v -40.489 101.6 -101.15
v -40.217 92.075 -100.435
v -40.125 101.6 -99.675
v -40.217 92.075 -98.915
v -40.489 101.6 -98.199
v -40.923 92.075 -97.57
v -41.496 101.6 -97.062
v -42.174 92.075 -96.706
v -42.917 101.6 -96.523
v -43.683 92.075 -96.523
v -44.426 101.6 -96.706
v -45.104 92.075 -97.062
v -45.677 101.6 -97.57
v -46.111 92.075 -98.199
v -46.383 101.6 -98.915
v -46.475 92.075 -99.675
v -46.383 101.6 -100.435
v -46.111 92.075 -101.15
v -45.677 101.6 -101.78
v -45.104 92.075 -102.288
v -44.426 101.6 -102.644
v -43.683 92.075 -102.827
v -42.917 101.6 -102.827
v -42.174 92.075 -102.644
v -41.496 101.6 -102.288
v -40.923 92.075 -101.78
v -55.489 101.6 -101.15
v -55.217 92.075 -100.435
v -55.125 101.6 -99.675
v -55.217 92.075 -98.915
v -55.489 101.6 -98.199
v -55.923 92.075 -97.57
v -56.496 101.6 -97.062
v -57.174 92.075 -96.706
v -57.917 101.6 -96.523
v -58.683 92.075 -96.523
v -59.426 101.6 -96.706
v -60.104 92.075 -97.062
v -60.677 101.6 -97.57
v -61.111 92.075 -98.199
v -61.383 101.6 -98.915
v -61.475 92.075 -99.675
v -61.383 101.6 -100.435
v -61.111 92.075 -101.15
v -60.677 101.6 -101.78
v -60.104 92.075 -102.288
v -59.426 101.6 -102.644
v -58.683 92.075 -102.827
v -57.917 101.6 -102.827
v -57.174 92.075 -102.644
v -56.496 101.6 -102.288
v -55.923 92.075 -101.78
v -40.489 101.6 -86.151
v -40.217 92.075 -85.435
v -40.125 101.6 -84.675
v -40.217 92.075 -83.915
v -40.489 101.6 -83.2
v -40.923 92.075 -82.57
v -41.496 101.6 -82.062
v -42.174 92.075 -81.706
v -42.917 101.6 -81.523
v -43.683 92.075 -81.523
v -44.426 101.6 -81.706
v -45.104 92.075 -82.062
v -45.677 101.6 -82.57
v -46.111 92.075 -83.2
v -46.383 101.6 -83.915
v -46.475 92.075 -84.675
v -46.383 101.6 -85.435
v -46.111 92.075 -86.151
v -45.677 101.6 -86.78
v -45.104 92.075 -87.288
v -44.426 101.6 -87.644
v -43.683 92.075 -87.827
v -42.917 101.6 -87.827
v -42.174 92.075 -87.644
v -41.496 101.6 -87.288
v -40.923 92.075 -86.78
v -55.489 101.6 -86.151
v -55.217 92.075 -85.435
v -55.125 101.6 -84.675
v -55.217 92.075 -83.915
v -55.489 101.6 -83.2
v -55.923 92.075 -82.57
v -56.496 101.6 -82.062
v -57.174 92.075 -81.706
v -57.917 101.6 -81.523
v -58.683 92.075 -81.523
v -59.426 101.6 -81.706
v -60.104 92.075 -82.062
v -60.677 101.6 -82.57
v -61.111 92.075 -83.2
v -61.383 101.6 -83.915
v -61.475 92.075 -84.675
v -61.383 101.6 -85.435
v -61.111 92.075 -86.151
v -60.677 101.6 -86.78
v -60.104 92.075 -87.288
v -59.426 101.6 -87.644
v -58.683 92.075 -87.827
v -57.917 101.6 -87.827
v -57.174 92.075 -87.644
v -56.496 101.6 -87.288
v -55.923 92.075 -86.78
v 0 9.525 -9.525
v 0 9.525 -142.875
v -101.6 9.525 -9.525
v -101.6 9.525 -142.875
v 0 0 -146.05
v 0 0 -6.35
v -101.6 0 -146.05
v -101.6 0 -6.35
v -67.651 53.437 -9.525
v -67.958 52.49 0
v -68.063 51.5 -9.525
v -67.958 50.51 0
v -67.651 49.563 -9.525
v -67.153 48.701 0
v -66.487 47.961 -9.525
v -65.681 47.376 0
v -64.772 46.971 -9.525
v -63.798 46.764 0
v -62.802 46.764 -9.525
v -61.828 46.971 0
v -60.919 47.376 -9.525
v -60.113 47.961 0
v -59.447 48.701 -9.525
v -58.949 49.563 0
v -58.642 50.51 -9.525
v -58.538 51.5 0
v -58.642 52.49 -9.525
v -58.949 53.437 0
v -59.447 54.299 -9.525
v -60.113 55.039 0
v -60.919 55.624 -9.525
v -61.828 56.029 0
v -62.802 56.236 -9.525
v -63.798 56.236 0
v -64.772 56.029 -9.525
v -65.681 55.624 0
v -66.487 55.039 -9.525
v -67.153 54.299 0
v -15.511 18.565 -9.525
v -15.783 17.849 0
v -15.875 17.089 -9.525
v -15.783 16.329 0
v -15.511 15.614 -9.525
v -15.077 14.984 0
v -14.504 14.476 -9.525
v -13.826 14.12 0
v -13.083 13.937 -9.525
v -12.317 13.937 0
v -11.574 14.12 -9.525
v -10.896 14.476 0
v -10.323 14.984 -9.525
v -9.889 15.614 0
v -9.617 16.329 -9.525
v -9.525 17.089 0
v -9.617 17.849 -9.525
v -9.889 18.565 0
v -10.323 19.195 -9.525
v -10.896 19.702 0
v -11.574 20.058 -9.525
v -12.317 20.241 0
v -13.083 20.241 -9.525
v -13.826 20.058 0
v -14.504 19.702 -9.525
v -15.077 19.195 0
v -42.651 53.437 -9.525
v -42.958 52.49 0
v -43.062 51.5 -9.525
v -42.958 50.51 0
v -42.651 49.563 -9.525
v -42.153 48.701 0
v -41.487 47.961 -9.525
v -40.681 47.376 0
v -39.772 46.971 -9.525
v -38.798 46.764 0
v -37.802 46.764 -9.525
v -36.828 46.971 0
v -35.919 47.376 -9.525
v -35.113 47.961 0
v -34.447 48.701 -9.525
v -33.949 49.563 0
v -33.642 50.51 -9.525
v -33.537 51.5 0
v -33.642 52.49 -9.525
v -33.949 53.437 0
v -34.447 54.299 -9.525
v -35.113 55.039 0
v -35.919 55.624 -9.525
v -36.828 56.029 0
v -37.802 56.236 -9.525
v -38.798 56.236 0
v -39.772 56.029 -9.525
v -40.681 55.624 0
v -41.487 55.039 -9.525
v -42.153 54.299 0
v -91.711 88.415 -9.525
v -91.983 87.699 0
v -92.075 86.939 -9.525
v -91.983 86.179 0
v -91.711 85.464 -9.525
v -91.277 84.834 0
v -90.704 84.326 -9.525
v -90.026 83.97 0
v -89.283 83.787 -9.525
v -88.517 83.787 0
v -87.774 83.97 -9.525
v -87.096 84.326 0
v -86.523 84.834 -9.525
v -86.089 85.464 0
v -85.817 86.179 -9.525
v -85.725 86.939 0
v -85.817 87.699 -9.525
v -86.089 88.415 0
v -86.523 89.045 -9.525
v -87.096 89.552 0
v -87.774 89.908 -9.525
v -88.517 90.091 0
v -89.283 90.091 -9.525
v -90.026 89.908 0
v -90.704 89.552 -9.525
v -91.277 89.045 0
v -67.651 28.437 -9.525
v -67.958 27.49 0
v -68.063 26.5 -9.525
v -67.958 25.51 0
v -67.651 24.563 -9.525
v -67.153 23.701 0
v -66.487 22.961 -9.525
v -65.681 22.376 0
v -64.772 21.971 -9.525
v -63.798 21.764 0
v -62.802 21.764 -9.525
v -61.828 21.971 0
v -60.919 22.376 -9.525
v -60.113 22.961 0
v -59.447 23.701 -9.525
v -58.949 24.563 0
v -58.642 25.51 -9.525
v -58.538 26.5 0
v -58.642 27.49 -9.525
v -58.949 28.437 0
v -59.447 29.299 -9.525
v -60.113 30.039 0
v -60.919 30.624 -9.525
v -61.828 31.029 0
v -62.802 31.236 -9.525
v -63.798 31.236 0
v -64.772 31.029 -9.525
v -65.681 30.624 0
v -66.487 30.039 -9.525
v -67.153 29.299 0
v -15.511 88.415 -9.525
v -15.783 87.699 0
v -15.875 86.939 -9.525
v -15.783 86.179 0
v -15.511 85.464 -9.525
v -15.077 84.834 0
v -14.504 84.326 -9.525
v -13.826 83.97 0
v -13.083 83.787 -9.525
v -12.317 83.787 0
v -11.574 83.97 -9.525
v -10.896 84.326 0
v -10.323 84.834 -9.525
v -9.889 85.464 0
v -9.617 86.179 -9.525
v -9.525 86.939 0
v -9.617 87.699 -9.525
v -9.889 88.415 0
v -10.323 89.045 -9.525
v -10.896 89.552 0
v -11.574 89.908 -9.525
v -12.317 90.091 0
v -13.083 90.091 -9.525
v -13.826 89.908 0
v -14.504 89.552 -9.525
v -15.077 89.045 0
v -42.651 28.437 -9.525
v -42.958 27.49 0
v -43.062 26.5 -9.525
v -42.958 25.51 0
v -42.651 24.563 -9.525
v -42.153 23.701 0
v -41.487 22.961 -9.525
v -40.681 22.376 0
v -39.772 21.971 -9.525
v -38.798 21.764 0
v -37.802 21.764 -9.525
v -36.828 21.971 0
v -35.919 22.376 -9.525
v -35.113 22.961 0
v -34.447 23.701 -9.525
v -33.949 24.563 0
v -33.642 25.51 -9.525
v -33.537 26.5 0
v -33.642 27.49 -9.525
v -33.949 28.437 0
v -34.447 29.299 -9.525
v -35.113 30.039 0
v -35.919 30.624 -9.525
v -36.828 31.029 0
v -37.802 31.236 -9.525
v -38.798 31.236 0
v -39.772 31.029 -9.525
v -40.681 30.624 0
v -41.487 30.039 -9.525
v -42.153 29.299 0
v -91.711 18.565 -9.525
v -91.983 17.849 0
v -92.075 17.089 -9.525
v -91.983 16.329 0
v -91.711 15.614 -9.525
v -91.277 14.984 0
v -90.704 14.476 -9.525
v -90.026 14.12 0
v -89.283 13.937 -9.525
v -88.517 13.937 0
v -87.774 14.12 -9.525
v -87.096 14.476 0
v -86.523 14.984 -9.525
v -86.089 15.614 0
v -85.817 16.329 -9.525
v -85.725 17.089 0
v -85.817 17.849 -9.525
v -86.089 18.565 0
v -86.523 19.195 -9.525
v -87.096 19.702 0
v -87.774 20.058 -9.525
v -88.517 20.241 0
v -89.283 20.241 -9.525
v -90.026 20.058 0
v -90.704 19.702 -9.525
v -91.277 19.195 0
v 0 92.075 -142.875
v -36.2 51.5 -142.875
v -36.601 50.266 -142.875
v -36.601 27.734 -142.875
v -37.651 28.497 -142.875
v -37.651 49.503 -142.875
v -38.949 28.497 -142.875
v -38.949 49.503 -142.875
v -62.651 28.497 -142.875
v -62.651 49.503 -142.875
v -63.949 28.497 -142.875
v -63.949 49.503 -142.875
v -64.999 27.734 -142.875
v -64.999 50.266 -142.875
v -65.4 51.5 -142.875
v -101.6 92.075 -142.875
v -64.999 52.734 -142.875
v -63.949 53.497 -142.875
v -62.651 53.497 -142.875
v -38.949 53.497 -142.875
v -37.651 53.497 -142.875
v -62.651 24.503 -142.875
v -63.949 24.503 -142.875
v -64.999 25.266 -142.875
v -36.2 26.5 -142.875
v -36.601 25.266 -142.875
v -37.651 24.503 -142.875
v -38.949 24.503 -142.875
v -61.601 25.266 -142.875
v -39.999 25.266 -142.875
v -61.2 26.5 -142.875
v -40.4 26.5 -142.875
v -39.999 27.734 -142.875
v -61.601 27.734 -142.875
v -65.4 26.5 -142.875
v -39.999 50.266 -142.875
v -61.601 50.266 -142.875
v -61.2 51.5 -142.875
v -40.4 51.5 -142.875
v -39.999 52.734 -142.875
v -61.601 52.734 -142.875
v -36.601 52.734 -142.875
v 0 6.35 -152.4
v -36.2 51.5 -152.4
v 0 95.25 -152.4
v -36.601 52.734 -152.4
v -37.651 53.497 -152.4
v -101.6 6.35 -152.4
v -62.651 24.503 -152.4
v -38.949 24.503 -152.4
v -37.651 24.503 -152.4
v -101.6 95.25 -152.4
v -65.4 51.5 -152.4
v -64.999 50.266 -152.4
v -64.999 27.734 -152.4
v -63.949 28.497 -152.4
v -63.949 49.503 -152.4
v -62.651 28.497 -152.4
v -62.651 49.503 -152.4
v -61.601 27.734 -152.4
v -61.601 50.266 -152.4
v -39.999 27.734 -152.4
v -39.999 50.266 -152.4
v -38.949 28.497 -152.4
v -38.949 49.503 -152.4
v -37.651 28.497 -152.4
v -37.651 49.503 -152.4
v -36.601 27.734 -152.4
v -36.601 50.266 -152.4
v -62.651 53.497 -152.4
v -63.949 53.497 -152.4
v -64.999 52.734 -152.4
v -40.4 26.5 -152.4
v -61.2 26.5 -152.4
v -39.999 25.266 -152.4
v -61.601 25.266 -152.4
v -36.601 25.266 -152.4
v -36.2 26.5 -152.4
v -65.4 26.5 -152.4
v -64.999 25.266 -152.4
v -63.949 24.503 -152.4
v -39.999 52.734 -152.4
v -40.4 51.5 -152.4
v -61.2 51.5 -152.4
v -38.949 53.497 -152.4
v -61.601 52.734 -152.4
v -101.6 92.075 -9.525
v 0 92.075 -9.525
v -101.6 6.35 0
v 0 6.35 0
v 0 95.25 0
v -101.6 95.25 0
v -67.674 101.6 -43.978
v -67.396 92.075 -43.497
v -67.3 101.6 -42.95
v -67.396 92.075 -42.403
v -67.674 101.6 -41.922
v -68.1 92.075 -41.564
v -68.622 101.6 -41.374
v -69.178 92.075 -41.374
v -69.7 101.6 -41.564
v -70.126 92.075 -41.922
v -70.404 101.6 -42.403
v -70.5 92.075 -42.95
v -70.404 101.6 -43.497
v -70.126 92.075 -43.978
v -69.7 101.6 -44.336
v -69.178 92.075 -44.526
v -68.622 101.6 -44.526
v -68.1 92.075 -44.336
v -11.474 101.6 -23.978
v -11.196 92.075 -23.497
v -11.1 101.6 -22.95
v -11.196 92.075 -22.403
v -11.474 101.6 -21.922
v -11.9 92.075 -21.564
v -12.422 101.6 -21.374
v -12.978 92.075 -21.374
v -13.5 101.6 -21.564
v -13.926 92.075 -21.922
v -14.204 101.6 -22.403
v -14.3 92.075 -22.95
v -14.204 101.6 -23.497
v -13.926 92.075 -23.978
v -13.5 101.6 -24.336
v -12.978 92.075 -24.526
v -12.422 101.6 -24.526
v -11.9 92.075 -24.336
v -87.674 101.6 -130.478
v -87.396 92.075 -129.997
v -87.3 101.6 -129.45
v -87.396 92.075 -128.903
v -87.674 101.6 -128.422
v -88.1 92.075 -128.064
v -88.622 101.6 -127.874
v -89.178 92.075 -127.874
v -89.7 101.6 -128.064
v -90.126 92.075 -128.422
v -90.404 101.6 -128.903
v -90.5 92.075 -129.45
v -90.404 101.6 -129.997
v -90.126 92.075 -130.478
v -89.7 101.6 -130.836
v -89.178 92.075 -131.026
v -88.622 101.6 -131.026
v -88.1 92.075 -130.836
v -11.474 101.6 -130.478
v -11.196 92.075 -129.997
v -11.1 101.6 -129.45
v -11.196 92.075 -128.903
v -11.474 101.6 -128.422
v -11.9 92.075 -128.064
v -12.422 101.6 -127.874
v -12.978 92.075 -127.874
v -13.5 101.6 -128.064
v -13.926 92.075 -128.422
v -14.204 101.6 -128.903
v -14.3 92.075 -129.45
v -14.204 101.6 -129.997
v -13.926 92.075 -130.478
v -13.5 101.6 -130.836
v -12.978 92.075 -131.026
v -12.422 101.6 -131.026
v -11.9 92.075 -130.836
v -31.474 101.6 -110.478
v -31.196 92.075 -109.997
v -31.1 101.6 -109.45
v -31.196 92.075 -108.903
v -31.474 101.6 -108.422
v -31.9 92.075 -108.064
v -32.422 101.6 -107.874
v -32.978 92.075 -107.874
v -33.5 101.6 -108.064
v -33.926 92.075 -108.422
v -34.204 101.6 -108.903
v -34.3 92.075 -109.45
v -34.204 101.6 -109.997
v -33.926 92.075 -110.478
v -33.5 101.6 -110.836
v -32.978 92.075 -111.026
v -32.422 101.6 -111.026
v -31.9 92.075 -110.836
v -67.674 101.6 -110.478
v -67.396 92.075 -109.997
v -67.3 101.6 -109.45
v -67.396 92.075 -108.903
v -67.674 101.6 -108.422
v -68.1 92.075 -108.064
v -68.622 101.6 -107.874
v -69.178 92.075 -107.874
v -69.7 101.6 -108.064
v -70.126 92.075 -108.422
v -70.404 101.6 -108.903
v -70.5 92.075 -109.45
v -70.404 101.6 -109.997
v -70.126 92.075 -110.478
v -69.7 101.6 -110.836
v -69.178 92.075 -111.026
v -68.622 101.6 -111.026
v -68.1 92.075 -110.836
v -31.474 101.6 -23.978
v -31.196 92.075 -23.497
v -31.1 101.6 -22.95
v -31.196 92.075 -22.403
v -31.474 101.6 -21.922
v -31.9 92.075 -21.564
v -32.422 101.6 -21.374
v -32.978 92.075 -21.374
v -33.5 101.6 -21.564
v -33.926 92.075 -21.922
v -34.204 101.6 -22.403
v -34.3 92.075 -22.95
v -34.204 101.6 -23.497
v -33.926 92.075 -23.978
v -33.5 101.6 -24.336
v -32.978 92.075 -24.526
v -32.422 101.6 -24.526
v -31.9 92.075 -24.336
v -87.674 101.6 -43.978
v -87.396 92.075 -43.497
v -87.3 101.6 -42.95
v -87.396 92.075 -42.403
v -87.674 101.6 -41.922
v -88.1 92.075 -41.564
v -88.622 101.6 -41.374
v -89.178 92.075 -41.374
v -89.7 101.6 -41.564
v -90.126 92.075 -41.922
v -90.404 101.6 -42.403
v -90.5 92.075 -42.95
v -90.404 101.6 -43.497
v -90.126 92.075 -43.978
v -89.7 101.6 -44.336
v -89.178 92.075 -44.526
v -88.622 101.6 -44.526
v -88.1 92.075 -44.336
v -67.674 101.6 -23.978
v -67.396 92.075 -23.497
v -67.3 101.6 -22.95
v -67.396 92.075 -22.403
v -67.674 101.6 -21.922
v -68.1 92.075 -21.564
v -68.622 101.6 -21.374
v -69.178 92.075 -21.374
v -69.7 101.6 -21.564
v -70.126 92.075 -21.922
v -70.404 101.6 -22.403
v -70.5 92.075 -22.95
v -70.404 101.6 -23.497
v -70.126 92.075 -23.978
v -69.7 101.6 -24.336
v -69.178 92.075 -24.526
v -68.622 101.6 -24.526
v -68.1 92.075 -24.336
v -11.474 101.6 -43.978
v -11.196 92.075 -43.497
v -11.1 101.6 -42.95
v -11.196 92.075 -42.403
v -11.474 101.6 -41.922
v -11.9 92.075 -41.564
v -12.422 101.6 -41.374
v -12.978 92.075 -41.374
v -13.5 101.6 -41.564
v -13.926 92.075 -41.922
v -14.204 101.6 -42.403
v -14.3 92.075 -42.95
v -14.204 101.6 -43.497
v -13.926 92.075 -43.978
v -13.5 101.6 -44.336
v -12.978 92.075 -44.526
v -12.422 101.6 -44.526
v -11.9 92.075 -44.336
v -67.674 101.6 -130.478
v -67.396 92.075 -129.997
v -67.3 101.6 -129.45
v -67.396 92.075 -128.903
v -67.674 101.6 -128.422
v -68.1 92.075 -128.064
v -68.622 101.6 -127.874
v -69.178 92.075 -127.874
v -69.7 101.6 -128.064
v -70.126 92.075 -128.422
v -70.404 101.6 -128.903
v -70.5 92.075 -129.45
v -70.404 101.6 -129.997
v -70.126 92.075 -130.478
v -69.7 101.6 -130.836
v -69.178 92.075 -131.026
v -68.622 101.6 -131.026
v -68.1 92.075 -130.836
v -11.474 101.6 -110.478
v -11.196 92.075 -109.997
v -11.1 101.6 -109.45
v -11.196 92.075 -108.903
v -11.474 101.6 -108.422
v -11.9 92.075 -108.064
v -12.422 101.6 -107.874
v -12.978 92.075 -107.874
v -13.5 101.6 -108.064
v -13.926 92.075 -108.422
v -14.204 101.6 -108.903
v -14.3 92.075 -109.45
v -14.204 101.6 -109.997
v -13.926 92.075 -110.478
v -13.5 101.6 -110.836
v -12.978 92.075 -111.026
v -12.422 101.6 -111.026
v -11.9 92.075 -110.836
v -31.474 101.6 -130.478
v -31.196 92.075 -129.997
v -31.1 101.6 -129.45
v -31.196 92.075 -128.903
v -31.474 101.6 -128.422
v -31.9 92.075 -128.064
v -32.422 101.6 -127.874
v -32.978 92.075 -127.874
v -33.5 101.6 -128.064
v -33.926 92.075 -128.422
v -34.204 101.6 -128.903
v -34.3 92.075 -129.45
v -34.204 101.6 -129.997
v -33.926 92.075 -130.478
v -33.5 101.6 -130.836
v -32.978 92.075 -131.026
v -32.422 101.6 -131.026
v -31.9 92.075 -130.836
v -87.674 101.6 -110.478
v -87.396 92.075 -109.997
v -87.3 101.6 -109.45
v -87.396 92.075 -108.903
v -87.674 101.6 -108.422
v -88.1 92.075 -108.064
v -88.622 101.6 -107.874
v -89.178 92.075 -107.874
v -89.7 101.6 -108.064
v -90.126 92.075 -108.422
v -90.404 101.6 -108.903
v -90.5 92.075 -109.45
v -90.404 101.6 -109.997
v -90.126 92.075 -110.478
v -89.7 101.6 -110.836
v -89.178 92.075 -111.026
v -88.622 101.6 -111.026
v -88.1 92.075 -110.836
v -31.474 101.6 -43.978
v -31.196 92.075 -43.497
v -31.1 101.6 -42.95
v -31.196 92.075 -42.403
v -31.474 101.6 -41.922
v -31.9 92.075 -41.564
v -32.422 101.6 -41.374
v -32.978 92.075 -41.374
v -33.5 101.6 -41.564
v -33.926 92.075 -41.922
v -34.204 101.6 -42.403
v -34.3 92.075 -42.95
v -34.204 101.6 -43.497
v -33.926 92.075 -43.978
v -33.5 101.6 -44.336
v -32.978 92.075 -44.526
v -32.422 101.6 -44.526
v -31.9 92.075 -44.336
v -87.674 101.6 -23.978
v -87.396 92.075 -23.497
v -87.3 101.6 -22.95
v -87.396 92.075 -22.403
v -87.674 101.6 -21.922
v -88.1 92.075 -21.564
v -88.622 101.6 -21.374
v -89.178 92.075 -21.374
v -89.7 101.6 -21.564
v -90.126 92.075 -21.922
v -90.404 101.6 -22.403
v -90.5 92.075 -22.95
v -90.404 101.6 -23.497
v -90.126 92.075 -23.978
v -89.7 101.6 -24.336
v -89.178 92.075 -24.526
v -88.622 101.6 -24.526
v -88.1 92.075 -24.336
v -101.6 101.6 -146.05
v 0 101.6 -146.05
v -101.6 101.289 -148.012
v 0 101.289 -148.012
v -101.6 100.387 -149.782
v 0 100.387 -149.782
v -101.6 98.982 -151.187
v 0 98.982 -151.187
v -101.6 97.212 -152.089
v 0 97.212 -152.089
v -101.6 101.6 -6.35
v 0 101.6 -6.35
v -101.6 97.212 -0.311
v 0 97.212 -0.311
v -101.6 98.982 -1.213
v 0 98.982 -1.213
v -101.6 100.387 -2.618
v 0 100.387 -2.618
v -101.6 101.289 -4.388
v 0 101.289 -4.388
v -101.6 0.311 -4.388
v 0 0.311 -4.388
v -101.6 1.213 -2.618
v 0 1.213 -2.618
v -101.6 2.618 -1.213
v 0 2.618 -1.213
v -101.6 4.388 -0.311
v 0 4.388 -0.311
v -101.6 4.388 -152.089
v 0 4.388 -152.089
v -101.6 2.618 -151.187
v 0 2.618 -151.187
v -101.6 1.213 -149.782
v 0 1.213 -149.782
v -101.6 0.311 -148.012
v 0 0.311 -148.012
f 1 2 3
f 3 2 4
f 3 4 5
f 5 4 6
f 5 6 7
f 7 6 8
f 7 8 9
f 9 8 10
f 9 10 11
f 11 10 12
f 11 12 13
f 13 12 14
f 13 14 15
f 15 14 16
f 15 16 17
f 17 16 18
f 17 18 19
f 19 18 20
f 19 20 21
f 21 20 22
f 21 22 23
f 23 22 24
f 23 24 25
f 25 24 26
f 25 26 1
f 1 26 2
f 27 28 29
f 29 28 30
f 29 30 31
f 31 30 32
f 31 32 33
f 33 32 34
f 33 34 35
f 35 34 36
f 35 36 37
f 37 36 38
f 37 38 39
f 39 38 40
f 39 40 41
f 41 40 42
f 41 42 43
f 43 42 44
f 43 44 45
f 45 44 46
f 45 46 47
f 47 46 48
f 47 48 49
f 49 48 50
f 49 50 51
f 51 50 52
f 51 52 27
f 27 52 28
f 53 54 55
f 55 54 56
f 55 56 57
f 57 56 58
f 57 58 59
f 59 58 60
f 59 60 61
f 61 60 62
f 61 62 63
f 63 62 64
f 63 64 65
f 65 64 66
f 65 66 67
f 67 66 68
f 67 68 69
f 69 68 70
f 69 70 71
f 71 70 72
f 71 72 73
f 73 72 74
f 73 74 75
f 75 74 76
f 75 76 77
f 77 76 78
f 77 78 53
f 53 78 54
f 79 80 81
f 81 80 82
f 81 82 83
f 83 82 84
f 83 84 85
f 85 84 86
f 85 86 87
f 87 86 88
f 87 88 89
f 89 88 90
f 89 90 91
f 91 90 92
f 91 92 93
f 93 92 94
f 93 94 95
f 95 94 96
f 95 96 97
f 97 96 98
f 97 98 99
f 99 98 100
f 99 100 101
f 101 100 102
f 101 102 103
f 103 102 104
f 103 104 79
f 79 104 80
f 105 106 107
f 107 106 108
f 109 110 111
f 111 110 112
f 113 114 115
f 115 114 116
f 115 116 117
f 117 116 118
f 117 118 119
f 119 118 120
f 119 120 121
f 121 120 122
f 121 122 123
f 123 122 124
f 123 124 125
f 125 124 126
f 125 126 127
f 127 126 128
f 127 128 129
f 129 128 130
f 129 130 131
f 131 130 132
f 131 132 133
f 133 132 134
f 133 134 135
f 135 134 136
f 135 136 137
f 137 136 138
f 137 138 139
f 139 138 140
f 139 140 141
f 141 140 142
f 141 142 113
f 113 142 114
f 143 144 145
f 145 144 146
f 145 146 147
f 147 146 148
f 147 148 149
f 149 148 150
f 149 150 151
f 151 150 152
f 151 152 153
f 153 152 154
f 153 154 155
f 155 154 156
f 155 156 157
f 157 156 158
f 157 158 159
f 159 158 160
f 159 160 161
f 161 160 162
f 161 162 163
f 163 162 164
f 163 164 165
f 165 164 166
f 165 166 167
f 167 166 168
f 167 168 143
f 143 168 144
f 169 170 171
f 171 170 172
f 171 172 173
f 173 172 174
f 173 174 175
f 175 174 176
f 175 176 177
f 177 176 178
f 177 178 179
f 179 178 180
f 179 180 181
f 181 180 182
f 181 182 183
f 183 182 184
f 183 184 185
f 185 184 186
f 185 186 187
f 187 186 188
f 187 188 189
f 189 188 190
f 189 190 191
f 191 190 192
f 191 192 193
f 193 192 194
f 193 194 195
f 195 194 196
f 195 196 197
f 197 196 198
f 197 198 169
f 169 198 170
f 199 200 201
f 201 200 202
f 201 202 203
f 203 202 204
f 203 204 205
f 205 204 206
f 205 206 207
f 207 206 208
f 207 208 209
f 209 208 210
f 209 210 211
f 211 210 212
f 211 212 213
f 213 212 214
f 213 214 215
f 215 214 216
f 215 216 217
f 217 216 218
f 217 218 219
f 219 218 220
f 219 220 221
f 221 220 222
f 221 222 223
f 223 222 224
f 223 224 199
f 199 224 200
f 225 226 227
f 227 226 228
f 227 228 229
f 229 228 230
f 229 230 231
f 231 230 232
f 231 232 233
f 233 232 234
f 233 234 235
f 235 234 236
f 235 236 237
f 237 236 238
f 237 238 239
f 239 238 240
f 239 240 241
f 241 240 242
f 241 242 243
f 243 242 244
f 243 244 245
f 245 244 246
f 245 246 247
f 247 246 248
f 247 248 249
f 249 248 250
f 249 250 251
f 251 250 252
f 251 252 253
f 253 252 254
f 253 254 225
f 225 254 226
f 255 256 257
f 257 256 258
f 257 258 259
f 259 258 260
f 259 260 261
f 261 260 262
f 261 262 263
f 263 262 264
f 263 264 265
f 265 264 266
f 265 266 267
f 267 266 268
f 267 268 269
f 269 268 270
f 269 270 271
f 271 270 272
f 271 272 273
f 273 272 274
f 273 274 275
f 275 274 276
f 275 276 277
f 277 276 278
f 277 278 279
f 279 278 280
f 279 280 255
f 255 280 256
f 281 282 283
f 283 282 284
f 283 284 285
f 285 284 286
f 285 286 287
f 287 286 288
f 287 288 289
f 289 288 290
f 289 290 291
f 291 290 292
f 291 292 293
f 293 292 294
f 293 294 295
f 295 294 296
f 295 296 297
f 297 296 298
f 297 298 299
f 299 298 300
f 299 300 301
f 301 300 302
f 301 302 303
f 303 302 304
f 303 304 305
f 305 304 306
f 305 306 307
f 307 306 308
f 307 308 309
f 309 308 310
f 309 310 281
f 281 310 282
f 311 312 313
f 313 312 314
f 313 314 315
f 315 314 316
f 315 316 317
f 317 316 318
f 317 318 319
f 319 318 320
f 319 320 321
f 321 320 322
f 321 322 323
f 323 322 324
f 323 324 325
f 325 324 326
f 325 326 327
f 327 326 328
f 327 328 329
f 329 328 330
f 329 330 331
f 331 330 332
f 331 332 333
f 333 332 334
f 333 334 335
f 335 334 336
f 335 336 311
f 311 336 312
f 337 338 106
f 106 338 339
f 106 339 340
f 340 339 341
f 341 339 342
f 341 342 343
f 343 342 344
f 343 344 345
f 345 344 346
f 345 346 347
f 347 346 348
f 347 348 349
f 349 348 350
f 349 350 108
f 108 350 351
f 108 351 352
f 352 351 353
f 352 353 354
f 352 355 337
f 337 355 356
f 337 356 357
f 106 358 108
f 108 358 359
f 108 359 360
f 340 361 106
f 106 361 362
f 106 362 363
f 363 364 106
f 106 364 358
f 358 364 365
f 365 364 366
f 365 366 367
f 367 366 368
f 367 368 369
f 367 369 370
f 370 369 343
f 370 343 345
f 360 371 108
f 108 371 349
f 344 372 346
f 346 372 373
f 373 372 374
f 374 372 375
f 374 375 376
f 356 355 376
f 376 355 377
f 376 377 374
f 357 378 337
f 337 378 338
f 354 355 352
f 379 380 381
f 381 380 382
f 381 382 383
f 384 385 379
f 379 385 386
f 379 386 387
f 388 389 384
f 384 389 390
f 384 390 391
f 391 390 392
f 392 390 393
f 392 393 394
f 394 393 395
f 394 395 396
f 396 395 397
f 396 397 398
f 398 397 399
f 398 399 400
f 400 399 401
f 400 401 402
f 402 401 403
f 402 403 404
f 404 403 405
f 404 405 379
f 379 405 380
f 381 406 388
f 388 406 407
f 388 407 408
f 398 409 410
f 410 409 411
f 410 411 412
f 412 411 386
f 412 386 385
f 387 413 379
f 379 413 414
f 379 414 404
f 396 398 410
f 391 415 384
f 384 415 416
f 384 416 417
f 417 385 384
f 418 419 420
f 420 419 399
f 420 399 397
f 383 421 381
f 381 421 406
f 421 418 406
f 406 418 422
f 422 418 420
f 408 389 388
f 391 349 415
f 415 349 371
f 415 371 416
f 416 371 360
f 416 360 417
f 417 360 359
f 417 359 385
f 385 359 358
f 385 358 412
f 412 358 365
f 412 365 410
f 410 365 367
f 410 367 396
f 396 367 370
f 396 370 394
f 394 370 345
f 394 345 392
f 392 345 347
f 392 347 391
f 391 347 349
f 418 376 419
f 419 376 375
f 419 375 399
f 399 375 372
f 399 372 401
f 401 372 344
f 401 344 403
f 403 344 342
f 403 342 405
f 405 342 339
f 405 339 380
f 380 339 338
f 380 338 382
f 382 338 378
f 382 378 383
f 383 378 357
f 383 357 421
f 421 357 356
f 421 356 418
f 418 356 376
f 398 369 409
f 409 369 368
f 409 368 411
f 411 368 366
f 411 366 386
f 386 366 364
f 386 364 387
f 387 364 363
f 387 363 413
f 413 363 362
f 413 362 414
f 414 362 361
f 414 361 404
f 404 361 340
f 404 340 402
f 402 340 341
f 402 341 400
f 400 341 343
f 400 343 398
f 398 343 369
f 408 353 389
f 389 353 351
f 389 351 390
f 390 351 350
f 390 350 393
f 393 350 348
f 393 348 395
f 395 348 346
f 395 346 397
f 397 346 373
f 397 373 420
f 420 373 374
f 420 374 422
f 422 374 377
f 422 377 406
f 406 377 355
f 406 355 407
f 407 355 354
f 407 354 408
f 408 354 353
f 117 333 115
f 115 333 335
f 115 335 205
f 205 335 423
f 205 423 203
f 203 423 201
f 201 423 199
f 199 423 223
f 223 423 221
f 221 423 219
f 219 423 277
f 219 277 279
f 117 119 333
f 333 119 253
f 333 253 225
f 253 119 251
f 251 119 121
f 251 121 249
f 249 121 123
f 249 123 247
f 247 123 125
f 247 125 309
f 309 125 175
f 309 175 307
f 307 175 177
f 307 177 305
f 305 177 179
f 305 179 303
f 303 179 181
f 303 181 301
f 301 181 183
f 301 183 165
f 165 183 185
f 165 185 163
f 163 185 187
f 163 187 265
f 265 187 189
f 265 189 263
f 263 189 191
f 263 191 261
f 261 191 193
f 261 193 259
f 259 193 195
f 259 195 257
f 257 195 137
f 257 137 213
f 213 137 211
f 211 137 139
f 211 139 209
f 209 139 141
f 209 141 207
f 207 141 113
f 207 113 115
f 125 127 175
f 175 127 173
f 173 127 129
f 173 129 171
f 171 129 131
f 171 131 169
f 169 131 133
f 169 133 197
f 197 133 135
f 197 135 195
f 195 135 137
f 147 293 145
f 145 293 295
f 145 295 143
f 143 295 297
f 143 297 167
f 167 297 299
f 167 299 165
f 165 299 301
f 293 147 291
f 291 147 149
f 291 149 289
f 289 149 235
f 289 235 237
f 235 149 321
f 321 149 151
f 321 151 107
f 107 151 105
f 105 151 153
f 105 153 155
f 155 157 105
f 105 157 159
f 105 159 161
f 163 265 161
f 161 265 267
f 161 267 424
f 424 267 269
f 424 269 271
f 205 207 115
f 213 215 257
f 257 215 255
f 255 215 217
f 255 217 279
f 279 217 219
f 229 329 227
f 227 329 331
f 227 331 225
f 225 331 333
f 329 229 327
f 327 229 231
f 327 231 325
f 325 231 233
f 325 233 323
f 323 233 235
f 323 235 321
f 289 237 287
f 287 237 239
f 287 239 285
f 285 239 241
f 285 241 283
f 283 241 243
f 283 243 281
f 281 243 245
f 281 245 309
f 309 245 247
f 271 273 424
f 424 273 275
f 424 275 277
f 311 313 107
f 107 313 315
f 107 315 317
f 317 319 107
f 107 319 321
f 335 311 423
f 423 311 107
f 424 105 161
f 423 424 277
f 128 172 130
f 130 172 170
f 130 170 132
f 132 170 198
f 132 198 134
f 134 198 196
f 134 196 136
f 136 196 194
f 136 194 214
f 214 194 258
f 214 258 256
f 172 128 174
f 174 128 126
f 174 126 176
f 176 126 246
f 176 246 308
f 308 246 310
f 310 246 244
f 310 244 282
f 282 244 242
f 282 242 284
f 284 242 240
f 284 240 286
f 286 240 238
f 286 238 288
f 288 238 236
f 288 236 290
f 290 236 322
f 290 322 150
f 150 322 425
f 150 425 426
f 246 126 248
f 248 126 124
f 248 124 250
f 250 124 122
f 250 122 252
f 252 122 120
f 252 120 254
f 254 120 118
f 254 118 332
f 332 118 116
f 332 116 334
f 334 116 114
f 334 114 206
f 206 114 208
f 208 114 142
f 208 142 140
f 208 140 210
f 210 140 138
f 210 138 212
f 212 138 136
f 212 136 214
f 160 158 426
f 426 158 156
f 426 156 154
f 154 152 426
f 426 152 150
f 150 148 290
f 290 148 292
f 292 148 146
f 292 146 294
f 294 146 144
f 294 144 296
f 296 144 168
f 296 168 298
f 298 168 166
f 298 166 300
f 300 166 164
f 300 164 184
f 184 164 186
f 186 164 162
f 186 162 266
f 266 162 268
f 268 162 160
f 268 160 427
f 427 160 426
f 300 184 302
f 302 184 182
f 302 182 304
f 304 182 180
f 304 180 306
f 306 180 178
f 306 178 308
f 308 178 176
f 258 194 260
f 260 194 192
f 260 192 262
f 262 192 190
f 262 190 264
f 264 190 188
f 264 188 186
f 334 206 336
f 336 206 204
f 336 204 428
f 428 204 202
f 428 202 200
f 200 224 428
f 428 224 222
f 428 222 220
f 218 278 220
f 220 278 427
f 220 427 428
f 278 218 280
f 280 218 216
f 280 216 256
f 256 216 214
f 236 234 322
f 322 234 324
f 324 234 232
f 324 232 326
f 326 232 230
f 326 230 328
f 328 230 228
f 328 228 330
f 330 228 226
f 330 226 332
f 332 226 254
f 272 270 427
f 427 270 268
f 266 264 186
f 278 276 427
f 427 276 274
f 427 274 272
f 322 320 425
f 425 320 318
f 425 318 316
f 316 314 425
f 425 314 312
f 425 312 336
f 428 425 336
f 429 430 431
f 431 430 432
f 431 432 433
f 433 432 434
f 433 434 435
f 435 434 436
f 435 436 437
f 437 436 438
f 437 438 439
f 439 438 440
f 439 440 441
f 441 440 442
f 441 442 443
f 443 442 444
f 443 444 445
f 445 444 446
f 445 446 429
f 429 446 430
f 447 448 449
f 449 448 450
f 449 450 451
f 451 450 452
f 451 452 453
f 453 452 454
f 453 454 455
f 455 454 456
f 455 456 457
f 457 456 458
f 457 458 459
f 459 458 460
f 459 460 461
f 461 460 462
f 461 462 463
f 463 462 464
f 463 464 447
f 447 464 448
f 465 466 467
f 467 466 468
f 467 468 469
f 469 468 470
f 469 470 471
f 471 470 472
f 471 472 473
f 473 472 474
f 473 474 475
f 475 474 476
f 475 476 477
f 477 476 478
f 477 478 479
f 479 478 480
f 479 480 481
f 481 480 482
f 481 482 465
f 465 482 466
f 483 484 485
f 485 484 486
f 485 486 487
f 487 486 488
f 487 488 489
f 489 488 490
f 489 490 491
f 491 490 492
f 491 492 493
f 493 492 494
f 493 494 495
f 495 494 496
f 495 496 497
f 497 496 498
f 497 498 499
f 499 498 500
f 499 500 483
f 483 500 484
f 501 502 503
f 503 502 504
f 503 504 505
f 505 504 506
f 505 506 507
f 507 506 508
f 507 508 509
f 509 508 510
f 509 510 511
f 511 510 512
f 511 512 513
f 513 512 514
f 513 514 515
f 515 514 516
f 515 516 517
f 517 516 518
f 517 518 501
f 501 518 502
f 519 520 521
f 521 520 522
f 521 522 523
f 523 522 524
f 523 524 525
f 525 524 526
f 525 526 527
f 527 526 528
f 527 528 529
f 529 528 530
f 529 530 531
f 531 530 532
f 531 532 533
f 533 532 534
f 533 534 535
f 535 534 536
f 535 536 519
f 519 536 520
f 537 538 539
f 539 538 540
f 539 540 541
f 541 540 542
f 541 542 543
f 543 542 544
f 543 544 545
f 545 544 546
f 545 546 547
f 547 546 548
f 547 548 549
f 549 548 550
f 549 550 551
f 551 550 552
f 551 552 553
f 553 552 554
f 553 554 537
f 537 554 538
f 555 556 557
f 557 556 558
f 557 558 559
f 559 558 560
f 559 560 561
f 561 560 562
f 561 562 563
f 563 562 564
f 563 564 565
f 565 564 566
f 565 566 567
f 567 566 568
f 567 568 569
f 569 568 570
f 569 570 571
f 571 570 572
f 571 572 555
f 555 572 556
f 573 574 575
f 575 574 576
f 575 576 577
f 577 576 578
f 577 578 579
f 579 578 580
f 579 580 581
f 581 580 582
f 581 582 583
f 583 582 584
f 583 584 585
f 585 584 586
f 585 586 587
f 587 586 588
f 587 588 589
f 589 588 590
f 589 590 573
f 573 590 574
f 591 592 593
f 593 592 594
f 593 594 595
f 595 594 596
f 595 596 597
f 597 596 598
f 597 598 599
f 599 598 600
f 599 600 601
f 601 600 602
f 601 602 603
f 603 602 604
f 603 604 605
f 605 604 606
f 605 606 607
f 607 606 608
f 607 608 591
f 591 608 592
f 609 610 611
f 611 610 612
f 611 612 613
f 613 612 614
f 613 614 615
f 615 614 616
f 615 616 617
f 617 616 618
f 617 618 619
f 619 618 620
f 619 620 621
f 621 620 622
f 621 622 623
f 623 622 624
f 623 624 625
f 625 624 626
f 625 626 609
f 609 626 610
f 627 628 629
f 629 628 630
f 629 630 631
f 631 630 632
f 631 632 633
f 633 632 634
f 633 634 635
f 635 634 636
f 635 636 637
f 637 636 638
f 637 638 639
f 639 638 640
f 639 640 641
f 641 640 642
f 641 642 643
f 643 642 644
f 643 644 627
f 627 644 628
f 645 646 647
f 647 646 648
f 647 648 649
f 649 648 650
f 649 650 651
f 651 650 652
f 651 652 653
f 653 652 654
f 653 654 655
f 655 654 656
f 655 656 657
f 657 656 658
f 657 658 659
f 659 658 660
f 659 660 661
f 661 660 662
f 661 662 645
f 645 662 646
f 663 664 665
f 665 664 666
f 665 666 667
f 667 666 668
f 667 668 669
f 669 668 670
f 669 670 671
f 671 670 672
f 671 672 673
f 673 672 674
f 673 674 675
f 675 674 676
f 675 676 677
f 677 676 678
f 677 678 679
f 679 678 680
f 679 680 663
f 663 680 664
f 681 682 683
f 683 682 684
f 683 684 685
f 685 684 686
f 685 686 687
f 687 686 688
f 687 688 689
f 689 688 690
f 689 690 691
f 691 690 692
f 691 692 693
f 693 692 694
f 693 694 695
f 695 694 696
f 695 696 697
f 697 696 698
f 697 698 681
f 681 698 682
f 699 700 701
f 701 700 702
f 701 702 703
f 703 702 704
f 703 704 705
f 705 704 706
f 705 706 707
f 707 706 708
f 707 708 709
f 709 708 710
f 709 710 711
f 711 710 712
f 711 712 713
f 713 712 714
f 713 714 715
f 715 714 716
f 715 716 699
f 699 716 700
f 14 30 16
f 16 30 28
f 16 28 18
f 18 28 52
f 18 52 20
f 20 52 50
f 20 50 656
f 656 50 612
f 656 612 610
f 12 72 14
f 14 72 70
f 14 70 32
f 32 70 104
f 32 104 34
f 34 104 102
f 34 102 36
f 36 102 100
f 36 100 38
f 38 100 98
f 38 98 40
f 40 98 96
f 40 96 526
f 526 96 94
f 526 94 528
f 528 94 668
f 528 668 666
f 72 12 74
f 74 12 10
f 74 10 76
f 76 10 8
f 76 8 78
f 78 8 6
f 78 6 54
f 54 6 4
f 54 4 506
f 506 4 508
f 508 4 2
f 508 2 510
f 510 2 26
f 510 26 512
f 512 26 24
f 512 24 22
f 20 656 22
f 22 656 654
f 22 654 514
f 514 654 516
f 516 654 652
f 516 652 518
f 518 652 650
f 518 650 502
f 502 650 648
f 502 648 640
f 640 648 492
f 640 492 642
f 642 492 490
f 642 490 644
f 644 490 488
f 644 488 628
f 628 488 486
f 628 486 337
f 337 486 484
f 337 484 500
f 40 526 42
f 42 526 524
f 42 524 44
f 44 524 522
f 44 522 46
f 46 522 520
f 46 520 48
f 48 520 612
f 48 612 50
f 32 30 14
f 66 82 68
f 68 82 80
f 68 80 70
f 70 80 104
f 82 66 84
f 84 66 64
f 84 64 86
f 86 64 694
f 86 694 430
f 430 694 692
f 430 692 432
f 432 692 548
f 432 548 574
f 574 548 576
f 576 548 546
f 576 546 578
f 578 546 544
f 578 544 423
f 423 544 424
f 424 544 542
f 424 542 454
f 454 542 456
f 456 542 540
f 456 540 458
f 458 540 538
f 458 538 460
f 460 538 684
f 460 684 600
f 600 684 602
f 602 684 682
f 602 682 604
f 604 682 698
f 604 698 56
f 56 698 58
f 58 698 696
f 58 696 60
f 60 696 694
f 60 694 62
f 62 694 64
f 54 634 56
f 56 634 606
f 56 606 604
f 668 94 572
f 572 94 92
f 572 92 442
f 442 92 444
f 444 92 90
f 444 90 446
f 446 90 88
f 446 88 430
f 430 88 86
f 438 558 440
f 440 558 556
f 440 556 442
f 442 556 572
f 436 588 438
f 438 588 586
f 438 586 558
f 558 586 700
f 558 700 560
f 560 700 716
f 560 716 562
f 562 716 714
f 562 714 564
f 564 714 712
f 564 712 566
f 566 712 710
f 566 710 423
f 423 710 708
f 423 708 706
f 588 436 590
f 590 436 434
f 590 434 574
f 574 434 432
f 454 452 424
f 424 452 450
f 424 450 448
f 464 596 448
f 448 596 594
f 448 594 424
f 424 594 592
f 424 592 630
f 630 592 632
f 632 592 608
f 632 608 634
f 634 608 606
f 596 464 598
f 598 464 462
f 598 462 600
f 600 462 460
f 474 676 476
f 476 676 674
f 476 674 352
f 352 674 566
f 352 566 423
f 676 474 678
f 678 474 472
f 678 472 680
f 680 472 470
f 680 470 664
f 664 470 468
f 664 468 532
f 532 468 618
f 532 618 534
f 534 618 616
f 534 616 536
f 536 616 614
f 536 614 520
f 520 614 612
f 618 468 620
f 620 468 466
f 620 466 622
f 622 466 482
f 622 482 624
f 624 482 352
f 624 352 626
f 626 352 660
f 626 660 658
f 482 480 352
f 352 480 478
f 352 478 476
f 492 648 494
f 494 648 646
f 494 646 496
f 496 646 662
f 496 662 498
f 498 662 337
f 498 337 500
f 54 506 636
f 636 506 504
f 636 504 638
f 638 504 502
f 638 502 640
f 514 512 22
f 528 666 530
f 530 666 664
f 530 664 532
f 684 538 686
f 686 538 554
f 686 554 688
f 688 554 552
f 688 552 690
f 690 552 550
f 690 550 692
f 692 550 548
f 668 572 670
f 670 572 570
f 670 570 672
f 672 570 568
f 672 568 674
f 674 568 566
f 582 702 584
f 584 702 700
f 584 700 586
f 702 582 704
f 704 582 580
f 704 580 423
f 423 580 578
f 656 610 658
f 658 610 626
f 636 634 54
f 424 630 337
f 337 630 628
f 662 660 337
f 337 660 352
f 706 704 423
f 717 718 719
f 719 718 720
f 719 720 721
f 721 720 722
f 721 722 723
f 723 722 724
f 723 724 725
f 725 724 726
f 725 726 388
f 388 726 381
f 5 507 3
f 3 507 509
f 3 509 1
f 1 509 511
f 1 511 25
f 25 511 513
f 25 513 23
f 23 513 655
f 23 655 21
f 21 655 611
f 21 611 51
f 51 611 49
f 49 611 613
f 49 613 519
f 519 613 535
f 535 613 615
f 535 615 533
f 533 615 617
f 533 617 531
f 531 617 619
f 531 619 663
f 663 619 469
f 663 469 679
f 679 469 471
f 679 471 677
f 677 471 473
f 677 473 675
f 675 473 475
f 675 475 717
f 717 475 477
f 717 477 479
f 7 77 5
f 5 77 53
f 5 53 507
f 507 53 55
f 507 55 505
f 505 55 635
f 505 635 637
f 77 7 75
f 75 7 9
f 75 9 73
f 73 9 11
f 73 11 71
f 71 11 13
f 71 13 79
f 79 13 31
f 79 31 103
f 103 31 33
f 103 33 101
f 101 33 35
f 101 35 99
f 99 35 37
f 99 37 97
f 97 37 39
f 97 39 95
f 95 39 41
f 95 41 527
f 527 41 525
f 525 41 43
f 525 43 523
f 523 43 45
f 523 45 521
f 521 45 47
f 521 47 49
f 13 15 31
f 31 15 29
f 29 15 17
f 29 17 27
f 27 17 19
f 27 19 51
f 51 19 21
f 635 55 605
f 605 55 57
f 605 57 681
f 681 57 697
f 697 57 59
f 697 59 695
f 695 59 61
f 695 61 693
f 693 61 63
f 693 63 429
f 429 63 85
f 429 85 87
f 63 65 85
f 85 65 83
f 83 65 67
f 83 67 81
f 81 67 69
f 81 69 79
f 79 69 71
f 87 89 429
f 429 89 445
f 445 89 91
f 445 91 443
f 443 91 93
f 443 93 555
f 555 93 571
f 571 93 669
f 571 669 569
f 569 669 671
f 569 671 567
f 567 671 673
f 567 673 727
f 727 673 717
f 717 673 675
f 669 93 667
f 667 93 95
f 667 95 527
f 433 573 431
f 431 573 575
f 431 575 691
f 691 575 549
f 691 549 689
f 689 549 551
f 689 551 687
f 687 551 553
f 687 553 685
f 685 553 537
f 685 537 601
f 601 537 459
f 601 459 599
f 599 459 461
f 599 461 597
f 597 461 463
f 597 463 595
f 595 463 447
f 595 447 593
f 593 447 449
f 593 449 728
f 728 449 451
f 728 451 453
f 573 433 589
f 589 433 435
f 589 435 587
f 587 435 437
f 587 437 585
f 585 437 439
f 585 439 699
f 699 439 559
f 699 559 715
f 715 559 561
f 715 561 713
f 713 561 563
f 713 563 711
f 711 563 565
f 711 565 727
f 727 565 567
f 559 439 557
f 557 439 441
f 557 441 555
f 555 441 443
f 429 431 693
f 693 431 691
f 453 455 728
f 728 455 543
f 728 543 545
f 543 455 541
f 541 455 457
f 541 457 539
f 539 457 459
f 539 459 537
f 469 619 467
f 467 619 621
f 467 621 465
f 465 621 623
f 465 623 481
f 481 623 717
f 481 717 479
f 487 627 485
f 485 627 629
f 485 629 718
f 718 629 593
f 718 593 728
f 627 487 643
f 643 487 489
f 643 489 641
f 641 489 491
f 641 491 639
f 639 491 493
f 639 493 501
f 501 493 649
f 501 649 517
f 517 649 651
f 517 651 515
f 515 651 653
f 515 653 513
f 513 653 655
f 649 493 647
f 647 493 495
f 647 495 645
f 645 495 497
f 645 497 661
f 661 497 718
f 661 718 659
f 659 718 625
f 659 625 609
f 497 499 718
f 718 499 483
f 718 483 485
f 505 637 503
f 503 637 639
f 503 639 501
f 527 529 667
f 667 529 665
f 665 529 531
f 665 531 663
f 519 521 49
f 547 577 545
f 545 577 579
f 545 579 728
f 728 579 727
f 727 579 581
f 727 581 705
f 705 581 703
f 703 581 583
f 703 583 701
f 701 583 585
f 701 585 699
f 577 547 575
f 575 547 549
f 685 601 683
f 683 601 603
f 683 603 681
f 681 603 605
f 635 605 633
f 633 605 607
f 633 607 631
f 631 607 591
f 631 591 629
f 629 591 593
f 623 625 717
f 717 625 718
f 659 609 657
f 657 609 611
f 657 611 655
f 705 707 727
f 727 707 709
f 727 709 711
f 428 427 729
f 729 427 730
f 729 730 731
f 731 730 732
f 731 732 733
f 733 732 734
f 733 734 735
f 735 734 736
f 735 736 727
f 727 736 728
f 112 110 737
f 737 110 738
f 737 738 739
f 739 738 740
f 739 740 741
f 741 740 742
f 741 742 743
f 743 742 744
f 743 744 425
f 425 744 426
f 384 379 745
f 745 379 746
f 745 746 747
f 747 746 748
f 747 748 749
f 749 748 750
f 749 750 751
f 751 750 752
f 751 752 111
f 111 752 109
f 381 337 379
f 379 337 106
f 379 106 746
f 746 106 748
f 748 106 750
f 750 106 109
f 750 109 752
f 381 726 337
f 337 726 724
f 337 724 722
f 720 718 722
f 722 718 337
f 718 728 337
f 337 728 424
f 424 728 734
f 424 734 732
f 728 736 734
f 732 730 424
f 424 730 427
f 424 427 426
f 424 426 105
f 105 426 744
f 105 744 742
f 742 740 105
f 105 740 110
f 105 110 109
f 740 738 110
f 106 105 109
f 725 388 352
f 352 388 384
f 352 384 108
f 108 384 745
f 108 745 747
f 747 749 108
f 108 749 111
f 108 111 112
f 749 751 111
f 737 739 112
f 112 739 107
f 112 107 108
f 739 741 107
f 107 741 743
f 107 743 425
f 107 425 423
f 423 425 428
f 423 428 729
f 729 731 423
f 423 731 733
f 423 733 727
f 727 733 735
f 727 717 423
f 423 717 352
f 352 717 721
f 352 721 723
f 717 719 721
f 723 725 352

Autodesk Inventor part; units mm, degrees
ref_plane "YZ Plane" through (0, 0, 0) normal (1, 0, 0) x (0, 1, 0)
ref_plane "XZ Plane" through (0, 0, 0) normal (0, 1, 0) x (-1, 0, 0)
ref_plane "XY Plane" through (0, 0, 0) normal (0, 0, 1) x (1, 0, 0)
sketch "Sketch1" plane through (0, 0, 0) normal (1, 0, 0) x (0, 1, 0)
  line L0 (6.35, 0) -> (95.25, 0)
  line L1 (101.6, -6.35) -> (101.6, -146.05)
  line L2 (95.25, -152.4) -> (6.35, -152.4)
  line L3 (0, -146.05) -> (0, -6.35)
  arc A0 (101.6, -6.35) -> (95.25, 0) centre (95.25, -6.35) ccw
  arc A1 (95.25, -152.4) -> (101.6, -146.05) centre (95.25, -146.05) ccw
  arc A2 (0, -146.05) -> (6.35, -152.4) centre (6.35, -146.05) ccw
  arc A3 (6.35, 0) -> (0, -6.35) centre (6.35, -6.35) ccw
  line L4 (92.075, -142.875) -> (92.075, -9.525)
  line L5 (92.075, -9.525) -> (9.525, -9.525)
  line L6 (9.525, -9.525) -> (9.525, -142.875)
  line L7 (9.525, -142.875) -> (92.075, -142.875)
  point P0 (0, 0)
  point P1 (101.6, -152.4)
  point P2 (101.6, 0)
  point P3 (0, -152.4)
  dimension "d0" = 101.6
  dimension "d1" = 152.4
  dimension "d2" = 6.35
  dimension "d3" = 6.35
  dimension "d4" = 9.525
extrude "Extrusion1" add sketch "Sketch1" against normal blind 101.6
sketch "Sketch2" plane through (0, 101.6, -6.35) normal (0, 1, 0) x (1, 0, 0)
  line L0 (0, 0) -> (0, 139.7) construction
  line L1 (0, 69.85) -> (-101.6, 69.85) construction
  line L2 (-101.6, 139.7) -> (-101.6, 0) construction
  line L3 (0, 99.6) -> (-45.4, 99.6) construction
  line L4 (-45.4, 99.6) -> (-45.4, 126.6) construction
  line L5 (-45.4, 126.6) -> (0, 126.6) construction
  line L6 (0, 126.6) -> (0, 99.6) construction
  line L7 (-32.7, 123.1) -> (-12.7, 123.1) construction
  line L8 (-12.7, 123.1) -> (-12.7, 103.1) construction
  line L9 (-12.7, 103.1) -> (-32.7, 103.1) construction
  line L10 (-32.7, 103.1) -> (-32.7, 123.1) construction
  line L11 (-32.7, 123.1) -> (-32.7, 126.6) construction
  line L12 (-32.7, 123.1) -> (-45.4, 123.1) construction
  line L13 (-12.7, 103.1) -> (-12.7, 99.6) construction
  line L14 (-12.7, 103.1) -> (0, 103.1) construction
  circle A0 centre (-32.7, 123.1) radius 1.6
  circle A1 centre (-12.7, 123.1) radius 1.6
  circle A2 centre (-12.7, 103.1) radius 1.6
  circle A3 centre (-32.7, 103.1) radius 1.6
  line L15 (0, 139.7) -> (0, 0) construction
  line L16 (-50.8, 69.85) -> (-50.8, 128.3257) construction
  line L17 (-101.6, 99.6) -> (-56.2, 99.6) construction
  line L18 (-56.2, 99.6) -> (-56.2, 126.6) construction
  line L19 (-56.2, 126.6) -> (-101.6, 126.6) construction
  line L20 (-101.6, 126.6) -> (-101.6, 99.6) construction
  line L21 (-68.9, 123.1) -> (-88.9, 123.1) construction
  line L22 (-88.9, 123.1) -> (-88.9, 103.1) construction
  line L23 (-88.9, 103.1) -> (-68.9, 103.1) construction
  line L24 (-68.9, 103.1) -> (-68.9, 123.1) construction
  line L25 (-68.9, 123.1) -> (-68.9, 126.6) construction
  line L26 (-68.9, 123.1) -> (-56.2, 123.1) construction
  line L27 (-88.9, 103.1) -> (-88.9, 99.6) construction
  line L28 (-88.9, 103.1) -> (-101.6, 103.1) construction
  circle A4 centre (-68.9, 123.1) radius 1.6
  circle A5 centre (-88.9, 123.1) radius 1.6
  circle A6 centre (-88.9, 103.1) radius 1.6
  circle A7 centre (-68.9, 103.1) radius 1.6
  line L29 (0, 40.1) -> (-45.4, 40.1) construction
  line L30 (-45.4, 40.1) -> (-45.4, 13.1) construction
  line L31 (-45.4, 13.1) -> (0, 13.1) construction
  line L32 (0, 13.1) -> (0, 40.1) construction
  line L33 (-32.7, 16.6) -> (-12.7, 16.6) construction
  line L34 (-12.7, 16.6) -> (-12.7, 36.6) construction
  line L35 (-12.7, 36.6) -> (-32.7, 36.6) construction
  line L36 (-32.7, 36.6) -> (-32.7, 16.6) construction
  line L37 (-32.7, 16.6) -> (-32.7, 13.1) construction
  line L38 (-32.7, 16.6) -> (-45.4, 16.6) construction
  line L39 (-12.7, 36.6) -> (-12.7, 40.1) construction
  line L40 (-12.7, 36.6) -> (0, 36.6) construction
  circle A8 centre (-32.7, 16.6) radius 1.6
  circle A9 centre (-12.7, 16.6) radius 1.6
  circle A10 centre (-12.7, 36.6) radius 1.6
  circle A11 centre (-32.7, 36.6) radius 1.6
  line L41 (-68.9, 16.6) -> (-88.9, 16.6) construction
  line L42 (-88.9, 36.6) -> (-68.9, 36.6) construction
  line L43 (-88.9, 36.6) -> (-88.9, 40.1) construction
  line L44 (-88.9, 16.6) -> (-88.9, 36.6) construction
  circle A12 centre (-88.9, 36.6) radius 1.6
  circle A13 centre (-88.9, 16.6) radius 1.6
  line L45 (-101.6, 40.1) -> (-56.2, 40.1) construction
  line L46 (-101.6, 13.1) -> (-101.6, 40.1) construction
  line L47 (-88.9, 36.6) -> (-101.6, 36.6) construction
  line L48 (-56.2, 13.1) -> (-101.6, 13.1) construction
  line L49 (-68.9, 36.6) -> (-68.9, 16.6) construction
  line L50 (-68.9, 16.6) -> (-68.9, 13.1) construction
  circle A14 centre (-68.9, 16.6) radius 1.6
  circle A15 centre (-68.9, 36.6) radius 1.6
  line L51 (-56.2, 40.1) -> (-56.2, 13.1) construction
  line L52 (-68.9, 16.6) -> (-56.2, 16.6) construction
  point P0 (0, -6.35)
  dimension "d7" = 45.4
  dimension "d8" = 27
  dimension "d9" = 20
  dimension "d10" = 20
  dimension "d11" = 3.2
  dimension "d12" = 3.2
  dimension "d13" = 3.2
  dimension "d14" = 3.2
  dimension "d15" = 106.5
extrude "Extrusion2" cut sketch "Sketch2" against normal up to next
sketch "Sketch3" plane through (0, 6.35, -152.4) normal (0, 0, -1) x (-1, 0, 0)
  line L0 (38.3, 45.15) -> (63.3, 45.15) construction
  line L1 (63.3, 45.15) -> (63.3, 20.15) construction
  line L2 (63.3, 20.15) -> (38.3, 20.15) construction
  line L3 (38.3, 20.15) -> (38.3, 45.15) construction
  circle A0 centre (38.3, 45.15) radius 2.1
  circle A1 centre (63.3, 45.15) radius 2.1
  circle A2 centre (63.3, 20.15) radius 2.1
  circle A3 centre (38.3, 20.15) radius 2.1
  line L4 (0, -6.35) -> (101.6, -6.35) construction
  line L5 (38.3, 32.65) -> (0, 32.65) construction
  line L6 (0, 0) -> (0, 88.9) construction
  line L7 (63.3, 32.65) -> (101.6, 32.65) construction
  line L8 (101.6, 88.9) -> (101.6, 0) construction
  dimension "d18" = 25
  dimension "d19" = 25
  dimension "d20" = 4.2
  dimension "d21" = 4.2
  dimension "d22" = 4.2
  dimension "d23" = 4.2
  dimension "d24" = 26.5
extrude "Extrusion3" cut sketch "Sketch3" against normal up to next
sketch "Sketch4" plane through (0, 6.35, 0) normal (0, 0, 1) x (1, 0, 0)
  line L0 (-88.9, 80.5892) -> (-12.7, 80.5892) construction
  line L1 (-12.7, 80.5892) -> (-12.7, 10.7392) construction
  line L2 (-12.7, 10.7392) -> (-88.9, 10.7392) construction
  line L3 (-88.9, 10.7392) -> (-88.9, 80.5892) construction
  line L4 (-88.9, 80.5892) -> (-88.9, 97.6783) construction
  line L5 (-88.9, 80.5892) -> (-101.6, 80.5892) construction
  line L6 (-101.6, 85.725) -> (-101.6, 3.175) construction
  line L7 (-12.7, 10.7392) -> (-12.7, -6.35) construction
  line L8 (0, -6.35) -> (-101.6, -6.35) construction
  line L9 (-12.7, 10.7392) -> (0, 10.7392) construction
  line L10 (0, 85.725) -> (0, 3.175) construction
  circle A0 centre (-12.7, 80.5892) radius 3.175
  circle A1 centre (-12.7, 10.7392) radius 3.175
  circle A2 centre (-88.9, 10.7392) radius 3.175
  circle A3 centre (-88.9, 80.5892) radius 3.175
  circle A4 centre (-63.3, 45.15) radius 2.1 projected
  circle A5 centre (-63.3, 20.15) radius 2.1 projected
  circle A6 centre (-38.3, 45.15) radius 2.1 projected
  circle A7 centre (-38.3, 20.15) radius 2.1 projected
  circle A8 centre (-63.3, 45.15) radius 4.7625
  circle A9 centre (-38.3, 45.15) radius 2.1 projected
  circle A10 centre (-38.3, 45.15) radius 4.7625
  circle A11 centre (-63.3, 20.15) radius 2.1 projected
  circle A12 centre (-63.3, 20.15) radius 4.7625
  circle A13 centre (-38.3, 20.15) radius 2.1 projected
  circle A14 centre (-38.3, 20.15) radius 4.7625
  dimension "d27" = 6.35
  dimension "d28" = 6.35
  dimension "d29" = 6.35
  dimension "d30" = 6.35
  dimension "d31" = 69.85
  dimension "d32" = 76.2
  dimension "d33" = 9.525
  dimension "d34" = 9.525
  dimension "d35" = 9.525
  dimension "d36" = 9.525
extrude "Extrusion4" cut sketch "Sketch4" against normal up to next contours A0 | A1 | A2 | A3 | A4 | A5 | A6 | A7 | A8 | A10 | A12 | A14
thread "Thread1" size "1/4-20 UNC" class "2B" standard "ANSI Unified Screw Threads" full length
thread "Thread2" size "1/4-20 UNC" class "2B" standard "ANSI Unified Screw Threads" full length
thread "Thread3" size "1/4-20 UNC" class "2B" standard "ANSI Unified Screw Threads" full length
thread "Thread4" size "1/4-20 UNC" class "2B" standard "ANSI Unified Screw Threads" full length
sketch "Sketch5" plane through (0, 101.6, -6.35) normal (0, 1, 0) x (1, 0, 0)
  line L0 (21.1594, 98.325) -> (-128.3175, 98.325) construction
  line L1 (0, 146.05) -> (-101.6, 146.05) construction
  circle A0 centre (-32.7, 103.1) radius 1.6 construction
  circle A1 centre (-32.7, 103.1) radius 2.75 construction
  line L2 (0, 3.175) -> (0, 136.525) construction
  line L3 (-101.6, 136.525) -> (-101.6, 3.175) construction
  line L4 (0, 98.325) -> (-101.6, 98.325) construction
  line L5 (-101.6, 98.325) -> (-101.6, 73.325) construction
  line L6 (-101.6, 73.325) -> (0, 73.325) construction
  line L7 (0, 73.325) -> (0, 98.325) construction
  line L8 (-43.3, 78.325) -> (-58.3, 78.325) construction
  line L9 (-58.3, 78.325) -> (-58.3, 93.325) construction
  line L10 (-58.3, 93.325) -> (-43.3, 93.325) construction
  line L11 (-43.3, 93.325) -> (-43.3, 78.325) construction
  line L12 (-43.3, 78.325) -> (0, 78.325) construction
  line L13 (-58.3, 93.325) -> (-101.6, 93.325) construction
  line L14 (-58.3, 93.325) -> (-58.3, 98.325) construction
  line L15 (-43.3, 78.325) -> (-43.3, 73.325) construction
  circle A2 centre (-43.3, 78.325) radius 3.175
  circle A3 centre (-58.3, 78.325) radius 3.175
  circle A4 centre (-58.3, 93.325) radius 3.175
  circle A5 centre (-43.3, 93.325) radius 3.175
  point P0 (0, -6.35)
  dimension "d47" = 47.725
  dimension "d48" = 5.5
  dimension "d49" = 25
  dimension "d50" = 15
  dimension "d51" = 15
  dimension "d52" = 6.35
  dimension "d53" = 6.35
  dimension "d54" = 6.35
  dimension "d55" = 6.35
extrude "Extrusion5" cut sketch "Sketch5" against normal up to next
thread "Thread5" size "1/4-20 UNC" class "2B" standard "ANSI Unified Screw Threads" full length
thread "Thread6" size "1/4-20 UNC" class "2B" standard "ANSI Unified Screw Threads" full length
thread "Thread7" size "1/4-20 UNC" class "2B" standard "ANSI Unified Screw Threads" full length
thread "Thread8" size "1/4-20 UNC" class "2B" standard "ANSI Unified Screw Threads" full length
equation "\"d12\" = d11"
equation "\"d13\" = d11"
equation "\"d14\" = d11"
equation "\"d16\" = d12"
equation "\"d21\" = d20"
equation "\"d22\" = d20"
equation "\"d23\" = d20"
equation "\"d34\" = d33"
equation "\"d35\" = d33"
equation "\"d36\" = d33"
equation "\"d37\" = d33"
equation "\"d53\" = d52"
equation "\"d54\" = d52"
equation "\"d55\" = d52"
properties part number "4in x 6in Steel Rectangular Tubing 4in long Machined"
